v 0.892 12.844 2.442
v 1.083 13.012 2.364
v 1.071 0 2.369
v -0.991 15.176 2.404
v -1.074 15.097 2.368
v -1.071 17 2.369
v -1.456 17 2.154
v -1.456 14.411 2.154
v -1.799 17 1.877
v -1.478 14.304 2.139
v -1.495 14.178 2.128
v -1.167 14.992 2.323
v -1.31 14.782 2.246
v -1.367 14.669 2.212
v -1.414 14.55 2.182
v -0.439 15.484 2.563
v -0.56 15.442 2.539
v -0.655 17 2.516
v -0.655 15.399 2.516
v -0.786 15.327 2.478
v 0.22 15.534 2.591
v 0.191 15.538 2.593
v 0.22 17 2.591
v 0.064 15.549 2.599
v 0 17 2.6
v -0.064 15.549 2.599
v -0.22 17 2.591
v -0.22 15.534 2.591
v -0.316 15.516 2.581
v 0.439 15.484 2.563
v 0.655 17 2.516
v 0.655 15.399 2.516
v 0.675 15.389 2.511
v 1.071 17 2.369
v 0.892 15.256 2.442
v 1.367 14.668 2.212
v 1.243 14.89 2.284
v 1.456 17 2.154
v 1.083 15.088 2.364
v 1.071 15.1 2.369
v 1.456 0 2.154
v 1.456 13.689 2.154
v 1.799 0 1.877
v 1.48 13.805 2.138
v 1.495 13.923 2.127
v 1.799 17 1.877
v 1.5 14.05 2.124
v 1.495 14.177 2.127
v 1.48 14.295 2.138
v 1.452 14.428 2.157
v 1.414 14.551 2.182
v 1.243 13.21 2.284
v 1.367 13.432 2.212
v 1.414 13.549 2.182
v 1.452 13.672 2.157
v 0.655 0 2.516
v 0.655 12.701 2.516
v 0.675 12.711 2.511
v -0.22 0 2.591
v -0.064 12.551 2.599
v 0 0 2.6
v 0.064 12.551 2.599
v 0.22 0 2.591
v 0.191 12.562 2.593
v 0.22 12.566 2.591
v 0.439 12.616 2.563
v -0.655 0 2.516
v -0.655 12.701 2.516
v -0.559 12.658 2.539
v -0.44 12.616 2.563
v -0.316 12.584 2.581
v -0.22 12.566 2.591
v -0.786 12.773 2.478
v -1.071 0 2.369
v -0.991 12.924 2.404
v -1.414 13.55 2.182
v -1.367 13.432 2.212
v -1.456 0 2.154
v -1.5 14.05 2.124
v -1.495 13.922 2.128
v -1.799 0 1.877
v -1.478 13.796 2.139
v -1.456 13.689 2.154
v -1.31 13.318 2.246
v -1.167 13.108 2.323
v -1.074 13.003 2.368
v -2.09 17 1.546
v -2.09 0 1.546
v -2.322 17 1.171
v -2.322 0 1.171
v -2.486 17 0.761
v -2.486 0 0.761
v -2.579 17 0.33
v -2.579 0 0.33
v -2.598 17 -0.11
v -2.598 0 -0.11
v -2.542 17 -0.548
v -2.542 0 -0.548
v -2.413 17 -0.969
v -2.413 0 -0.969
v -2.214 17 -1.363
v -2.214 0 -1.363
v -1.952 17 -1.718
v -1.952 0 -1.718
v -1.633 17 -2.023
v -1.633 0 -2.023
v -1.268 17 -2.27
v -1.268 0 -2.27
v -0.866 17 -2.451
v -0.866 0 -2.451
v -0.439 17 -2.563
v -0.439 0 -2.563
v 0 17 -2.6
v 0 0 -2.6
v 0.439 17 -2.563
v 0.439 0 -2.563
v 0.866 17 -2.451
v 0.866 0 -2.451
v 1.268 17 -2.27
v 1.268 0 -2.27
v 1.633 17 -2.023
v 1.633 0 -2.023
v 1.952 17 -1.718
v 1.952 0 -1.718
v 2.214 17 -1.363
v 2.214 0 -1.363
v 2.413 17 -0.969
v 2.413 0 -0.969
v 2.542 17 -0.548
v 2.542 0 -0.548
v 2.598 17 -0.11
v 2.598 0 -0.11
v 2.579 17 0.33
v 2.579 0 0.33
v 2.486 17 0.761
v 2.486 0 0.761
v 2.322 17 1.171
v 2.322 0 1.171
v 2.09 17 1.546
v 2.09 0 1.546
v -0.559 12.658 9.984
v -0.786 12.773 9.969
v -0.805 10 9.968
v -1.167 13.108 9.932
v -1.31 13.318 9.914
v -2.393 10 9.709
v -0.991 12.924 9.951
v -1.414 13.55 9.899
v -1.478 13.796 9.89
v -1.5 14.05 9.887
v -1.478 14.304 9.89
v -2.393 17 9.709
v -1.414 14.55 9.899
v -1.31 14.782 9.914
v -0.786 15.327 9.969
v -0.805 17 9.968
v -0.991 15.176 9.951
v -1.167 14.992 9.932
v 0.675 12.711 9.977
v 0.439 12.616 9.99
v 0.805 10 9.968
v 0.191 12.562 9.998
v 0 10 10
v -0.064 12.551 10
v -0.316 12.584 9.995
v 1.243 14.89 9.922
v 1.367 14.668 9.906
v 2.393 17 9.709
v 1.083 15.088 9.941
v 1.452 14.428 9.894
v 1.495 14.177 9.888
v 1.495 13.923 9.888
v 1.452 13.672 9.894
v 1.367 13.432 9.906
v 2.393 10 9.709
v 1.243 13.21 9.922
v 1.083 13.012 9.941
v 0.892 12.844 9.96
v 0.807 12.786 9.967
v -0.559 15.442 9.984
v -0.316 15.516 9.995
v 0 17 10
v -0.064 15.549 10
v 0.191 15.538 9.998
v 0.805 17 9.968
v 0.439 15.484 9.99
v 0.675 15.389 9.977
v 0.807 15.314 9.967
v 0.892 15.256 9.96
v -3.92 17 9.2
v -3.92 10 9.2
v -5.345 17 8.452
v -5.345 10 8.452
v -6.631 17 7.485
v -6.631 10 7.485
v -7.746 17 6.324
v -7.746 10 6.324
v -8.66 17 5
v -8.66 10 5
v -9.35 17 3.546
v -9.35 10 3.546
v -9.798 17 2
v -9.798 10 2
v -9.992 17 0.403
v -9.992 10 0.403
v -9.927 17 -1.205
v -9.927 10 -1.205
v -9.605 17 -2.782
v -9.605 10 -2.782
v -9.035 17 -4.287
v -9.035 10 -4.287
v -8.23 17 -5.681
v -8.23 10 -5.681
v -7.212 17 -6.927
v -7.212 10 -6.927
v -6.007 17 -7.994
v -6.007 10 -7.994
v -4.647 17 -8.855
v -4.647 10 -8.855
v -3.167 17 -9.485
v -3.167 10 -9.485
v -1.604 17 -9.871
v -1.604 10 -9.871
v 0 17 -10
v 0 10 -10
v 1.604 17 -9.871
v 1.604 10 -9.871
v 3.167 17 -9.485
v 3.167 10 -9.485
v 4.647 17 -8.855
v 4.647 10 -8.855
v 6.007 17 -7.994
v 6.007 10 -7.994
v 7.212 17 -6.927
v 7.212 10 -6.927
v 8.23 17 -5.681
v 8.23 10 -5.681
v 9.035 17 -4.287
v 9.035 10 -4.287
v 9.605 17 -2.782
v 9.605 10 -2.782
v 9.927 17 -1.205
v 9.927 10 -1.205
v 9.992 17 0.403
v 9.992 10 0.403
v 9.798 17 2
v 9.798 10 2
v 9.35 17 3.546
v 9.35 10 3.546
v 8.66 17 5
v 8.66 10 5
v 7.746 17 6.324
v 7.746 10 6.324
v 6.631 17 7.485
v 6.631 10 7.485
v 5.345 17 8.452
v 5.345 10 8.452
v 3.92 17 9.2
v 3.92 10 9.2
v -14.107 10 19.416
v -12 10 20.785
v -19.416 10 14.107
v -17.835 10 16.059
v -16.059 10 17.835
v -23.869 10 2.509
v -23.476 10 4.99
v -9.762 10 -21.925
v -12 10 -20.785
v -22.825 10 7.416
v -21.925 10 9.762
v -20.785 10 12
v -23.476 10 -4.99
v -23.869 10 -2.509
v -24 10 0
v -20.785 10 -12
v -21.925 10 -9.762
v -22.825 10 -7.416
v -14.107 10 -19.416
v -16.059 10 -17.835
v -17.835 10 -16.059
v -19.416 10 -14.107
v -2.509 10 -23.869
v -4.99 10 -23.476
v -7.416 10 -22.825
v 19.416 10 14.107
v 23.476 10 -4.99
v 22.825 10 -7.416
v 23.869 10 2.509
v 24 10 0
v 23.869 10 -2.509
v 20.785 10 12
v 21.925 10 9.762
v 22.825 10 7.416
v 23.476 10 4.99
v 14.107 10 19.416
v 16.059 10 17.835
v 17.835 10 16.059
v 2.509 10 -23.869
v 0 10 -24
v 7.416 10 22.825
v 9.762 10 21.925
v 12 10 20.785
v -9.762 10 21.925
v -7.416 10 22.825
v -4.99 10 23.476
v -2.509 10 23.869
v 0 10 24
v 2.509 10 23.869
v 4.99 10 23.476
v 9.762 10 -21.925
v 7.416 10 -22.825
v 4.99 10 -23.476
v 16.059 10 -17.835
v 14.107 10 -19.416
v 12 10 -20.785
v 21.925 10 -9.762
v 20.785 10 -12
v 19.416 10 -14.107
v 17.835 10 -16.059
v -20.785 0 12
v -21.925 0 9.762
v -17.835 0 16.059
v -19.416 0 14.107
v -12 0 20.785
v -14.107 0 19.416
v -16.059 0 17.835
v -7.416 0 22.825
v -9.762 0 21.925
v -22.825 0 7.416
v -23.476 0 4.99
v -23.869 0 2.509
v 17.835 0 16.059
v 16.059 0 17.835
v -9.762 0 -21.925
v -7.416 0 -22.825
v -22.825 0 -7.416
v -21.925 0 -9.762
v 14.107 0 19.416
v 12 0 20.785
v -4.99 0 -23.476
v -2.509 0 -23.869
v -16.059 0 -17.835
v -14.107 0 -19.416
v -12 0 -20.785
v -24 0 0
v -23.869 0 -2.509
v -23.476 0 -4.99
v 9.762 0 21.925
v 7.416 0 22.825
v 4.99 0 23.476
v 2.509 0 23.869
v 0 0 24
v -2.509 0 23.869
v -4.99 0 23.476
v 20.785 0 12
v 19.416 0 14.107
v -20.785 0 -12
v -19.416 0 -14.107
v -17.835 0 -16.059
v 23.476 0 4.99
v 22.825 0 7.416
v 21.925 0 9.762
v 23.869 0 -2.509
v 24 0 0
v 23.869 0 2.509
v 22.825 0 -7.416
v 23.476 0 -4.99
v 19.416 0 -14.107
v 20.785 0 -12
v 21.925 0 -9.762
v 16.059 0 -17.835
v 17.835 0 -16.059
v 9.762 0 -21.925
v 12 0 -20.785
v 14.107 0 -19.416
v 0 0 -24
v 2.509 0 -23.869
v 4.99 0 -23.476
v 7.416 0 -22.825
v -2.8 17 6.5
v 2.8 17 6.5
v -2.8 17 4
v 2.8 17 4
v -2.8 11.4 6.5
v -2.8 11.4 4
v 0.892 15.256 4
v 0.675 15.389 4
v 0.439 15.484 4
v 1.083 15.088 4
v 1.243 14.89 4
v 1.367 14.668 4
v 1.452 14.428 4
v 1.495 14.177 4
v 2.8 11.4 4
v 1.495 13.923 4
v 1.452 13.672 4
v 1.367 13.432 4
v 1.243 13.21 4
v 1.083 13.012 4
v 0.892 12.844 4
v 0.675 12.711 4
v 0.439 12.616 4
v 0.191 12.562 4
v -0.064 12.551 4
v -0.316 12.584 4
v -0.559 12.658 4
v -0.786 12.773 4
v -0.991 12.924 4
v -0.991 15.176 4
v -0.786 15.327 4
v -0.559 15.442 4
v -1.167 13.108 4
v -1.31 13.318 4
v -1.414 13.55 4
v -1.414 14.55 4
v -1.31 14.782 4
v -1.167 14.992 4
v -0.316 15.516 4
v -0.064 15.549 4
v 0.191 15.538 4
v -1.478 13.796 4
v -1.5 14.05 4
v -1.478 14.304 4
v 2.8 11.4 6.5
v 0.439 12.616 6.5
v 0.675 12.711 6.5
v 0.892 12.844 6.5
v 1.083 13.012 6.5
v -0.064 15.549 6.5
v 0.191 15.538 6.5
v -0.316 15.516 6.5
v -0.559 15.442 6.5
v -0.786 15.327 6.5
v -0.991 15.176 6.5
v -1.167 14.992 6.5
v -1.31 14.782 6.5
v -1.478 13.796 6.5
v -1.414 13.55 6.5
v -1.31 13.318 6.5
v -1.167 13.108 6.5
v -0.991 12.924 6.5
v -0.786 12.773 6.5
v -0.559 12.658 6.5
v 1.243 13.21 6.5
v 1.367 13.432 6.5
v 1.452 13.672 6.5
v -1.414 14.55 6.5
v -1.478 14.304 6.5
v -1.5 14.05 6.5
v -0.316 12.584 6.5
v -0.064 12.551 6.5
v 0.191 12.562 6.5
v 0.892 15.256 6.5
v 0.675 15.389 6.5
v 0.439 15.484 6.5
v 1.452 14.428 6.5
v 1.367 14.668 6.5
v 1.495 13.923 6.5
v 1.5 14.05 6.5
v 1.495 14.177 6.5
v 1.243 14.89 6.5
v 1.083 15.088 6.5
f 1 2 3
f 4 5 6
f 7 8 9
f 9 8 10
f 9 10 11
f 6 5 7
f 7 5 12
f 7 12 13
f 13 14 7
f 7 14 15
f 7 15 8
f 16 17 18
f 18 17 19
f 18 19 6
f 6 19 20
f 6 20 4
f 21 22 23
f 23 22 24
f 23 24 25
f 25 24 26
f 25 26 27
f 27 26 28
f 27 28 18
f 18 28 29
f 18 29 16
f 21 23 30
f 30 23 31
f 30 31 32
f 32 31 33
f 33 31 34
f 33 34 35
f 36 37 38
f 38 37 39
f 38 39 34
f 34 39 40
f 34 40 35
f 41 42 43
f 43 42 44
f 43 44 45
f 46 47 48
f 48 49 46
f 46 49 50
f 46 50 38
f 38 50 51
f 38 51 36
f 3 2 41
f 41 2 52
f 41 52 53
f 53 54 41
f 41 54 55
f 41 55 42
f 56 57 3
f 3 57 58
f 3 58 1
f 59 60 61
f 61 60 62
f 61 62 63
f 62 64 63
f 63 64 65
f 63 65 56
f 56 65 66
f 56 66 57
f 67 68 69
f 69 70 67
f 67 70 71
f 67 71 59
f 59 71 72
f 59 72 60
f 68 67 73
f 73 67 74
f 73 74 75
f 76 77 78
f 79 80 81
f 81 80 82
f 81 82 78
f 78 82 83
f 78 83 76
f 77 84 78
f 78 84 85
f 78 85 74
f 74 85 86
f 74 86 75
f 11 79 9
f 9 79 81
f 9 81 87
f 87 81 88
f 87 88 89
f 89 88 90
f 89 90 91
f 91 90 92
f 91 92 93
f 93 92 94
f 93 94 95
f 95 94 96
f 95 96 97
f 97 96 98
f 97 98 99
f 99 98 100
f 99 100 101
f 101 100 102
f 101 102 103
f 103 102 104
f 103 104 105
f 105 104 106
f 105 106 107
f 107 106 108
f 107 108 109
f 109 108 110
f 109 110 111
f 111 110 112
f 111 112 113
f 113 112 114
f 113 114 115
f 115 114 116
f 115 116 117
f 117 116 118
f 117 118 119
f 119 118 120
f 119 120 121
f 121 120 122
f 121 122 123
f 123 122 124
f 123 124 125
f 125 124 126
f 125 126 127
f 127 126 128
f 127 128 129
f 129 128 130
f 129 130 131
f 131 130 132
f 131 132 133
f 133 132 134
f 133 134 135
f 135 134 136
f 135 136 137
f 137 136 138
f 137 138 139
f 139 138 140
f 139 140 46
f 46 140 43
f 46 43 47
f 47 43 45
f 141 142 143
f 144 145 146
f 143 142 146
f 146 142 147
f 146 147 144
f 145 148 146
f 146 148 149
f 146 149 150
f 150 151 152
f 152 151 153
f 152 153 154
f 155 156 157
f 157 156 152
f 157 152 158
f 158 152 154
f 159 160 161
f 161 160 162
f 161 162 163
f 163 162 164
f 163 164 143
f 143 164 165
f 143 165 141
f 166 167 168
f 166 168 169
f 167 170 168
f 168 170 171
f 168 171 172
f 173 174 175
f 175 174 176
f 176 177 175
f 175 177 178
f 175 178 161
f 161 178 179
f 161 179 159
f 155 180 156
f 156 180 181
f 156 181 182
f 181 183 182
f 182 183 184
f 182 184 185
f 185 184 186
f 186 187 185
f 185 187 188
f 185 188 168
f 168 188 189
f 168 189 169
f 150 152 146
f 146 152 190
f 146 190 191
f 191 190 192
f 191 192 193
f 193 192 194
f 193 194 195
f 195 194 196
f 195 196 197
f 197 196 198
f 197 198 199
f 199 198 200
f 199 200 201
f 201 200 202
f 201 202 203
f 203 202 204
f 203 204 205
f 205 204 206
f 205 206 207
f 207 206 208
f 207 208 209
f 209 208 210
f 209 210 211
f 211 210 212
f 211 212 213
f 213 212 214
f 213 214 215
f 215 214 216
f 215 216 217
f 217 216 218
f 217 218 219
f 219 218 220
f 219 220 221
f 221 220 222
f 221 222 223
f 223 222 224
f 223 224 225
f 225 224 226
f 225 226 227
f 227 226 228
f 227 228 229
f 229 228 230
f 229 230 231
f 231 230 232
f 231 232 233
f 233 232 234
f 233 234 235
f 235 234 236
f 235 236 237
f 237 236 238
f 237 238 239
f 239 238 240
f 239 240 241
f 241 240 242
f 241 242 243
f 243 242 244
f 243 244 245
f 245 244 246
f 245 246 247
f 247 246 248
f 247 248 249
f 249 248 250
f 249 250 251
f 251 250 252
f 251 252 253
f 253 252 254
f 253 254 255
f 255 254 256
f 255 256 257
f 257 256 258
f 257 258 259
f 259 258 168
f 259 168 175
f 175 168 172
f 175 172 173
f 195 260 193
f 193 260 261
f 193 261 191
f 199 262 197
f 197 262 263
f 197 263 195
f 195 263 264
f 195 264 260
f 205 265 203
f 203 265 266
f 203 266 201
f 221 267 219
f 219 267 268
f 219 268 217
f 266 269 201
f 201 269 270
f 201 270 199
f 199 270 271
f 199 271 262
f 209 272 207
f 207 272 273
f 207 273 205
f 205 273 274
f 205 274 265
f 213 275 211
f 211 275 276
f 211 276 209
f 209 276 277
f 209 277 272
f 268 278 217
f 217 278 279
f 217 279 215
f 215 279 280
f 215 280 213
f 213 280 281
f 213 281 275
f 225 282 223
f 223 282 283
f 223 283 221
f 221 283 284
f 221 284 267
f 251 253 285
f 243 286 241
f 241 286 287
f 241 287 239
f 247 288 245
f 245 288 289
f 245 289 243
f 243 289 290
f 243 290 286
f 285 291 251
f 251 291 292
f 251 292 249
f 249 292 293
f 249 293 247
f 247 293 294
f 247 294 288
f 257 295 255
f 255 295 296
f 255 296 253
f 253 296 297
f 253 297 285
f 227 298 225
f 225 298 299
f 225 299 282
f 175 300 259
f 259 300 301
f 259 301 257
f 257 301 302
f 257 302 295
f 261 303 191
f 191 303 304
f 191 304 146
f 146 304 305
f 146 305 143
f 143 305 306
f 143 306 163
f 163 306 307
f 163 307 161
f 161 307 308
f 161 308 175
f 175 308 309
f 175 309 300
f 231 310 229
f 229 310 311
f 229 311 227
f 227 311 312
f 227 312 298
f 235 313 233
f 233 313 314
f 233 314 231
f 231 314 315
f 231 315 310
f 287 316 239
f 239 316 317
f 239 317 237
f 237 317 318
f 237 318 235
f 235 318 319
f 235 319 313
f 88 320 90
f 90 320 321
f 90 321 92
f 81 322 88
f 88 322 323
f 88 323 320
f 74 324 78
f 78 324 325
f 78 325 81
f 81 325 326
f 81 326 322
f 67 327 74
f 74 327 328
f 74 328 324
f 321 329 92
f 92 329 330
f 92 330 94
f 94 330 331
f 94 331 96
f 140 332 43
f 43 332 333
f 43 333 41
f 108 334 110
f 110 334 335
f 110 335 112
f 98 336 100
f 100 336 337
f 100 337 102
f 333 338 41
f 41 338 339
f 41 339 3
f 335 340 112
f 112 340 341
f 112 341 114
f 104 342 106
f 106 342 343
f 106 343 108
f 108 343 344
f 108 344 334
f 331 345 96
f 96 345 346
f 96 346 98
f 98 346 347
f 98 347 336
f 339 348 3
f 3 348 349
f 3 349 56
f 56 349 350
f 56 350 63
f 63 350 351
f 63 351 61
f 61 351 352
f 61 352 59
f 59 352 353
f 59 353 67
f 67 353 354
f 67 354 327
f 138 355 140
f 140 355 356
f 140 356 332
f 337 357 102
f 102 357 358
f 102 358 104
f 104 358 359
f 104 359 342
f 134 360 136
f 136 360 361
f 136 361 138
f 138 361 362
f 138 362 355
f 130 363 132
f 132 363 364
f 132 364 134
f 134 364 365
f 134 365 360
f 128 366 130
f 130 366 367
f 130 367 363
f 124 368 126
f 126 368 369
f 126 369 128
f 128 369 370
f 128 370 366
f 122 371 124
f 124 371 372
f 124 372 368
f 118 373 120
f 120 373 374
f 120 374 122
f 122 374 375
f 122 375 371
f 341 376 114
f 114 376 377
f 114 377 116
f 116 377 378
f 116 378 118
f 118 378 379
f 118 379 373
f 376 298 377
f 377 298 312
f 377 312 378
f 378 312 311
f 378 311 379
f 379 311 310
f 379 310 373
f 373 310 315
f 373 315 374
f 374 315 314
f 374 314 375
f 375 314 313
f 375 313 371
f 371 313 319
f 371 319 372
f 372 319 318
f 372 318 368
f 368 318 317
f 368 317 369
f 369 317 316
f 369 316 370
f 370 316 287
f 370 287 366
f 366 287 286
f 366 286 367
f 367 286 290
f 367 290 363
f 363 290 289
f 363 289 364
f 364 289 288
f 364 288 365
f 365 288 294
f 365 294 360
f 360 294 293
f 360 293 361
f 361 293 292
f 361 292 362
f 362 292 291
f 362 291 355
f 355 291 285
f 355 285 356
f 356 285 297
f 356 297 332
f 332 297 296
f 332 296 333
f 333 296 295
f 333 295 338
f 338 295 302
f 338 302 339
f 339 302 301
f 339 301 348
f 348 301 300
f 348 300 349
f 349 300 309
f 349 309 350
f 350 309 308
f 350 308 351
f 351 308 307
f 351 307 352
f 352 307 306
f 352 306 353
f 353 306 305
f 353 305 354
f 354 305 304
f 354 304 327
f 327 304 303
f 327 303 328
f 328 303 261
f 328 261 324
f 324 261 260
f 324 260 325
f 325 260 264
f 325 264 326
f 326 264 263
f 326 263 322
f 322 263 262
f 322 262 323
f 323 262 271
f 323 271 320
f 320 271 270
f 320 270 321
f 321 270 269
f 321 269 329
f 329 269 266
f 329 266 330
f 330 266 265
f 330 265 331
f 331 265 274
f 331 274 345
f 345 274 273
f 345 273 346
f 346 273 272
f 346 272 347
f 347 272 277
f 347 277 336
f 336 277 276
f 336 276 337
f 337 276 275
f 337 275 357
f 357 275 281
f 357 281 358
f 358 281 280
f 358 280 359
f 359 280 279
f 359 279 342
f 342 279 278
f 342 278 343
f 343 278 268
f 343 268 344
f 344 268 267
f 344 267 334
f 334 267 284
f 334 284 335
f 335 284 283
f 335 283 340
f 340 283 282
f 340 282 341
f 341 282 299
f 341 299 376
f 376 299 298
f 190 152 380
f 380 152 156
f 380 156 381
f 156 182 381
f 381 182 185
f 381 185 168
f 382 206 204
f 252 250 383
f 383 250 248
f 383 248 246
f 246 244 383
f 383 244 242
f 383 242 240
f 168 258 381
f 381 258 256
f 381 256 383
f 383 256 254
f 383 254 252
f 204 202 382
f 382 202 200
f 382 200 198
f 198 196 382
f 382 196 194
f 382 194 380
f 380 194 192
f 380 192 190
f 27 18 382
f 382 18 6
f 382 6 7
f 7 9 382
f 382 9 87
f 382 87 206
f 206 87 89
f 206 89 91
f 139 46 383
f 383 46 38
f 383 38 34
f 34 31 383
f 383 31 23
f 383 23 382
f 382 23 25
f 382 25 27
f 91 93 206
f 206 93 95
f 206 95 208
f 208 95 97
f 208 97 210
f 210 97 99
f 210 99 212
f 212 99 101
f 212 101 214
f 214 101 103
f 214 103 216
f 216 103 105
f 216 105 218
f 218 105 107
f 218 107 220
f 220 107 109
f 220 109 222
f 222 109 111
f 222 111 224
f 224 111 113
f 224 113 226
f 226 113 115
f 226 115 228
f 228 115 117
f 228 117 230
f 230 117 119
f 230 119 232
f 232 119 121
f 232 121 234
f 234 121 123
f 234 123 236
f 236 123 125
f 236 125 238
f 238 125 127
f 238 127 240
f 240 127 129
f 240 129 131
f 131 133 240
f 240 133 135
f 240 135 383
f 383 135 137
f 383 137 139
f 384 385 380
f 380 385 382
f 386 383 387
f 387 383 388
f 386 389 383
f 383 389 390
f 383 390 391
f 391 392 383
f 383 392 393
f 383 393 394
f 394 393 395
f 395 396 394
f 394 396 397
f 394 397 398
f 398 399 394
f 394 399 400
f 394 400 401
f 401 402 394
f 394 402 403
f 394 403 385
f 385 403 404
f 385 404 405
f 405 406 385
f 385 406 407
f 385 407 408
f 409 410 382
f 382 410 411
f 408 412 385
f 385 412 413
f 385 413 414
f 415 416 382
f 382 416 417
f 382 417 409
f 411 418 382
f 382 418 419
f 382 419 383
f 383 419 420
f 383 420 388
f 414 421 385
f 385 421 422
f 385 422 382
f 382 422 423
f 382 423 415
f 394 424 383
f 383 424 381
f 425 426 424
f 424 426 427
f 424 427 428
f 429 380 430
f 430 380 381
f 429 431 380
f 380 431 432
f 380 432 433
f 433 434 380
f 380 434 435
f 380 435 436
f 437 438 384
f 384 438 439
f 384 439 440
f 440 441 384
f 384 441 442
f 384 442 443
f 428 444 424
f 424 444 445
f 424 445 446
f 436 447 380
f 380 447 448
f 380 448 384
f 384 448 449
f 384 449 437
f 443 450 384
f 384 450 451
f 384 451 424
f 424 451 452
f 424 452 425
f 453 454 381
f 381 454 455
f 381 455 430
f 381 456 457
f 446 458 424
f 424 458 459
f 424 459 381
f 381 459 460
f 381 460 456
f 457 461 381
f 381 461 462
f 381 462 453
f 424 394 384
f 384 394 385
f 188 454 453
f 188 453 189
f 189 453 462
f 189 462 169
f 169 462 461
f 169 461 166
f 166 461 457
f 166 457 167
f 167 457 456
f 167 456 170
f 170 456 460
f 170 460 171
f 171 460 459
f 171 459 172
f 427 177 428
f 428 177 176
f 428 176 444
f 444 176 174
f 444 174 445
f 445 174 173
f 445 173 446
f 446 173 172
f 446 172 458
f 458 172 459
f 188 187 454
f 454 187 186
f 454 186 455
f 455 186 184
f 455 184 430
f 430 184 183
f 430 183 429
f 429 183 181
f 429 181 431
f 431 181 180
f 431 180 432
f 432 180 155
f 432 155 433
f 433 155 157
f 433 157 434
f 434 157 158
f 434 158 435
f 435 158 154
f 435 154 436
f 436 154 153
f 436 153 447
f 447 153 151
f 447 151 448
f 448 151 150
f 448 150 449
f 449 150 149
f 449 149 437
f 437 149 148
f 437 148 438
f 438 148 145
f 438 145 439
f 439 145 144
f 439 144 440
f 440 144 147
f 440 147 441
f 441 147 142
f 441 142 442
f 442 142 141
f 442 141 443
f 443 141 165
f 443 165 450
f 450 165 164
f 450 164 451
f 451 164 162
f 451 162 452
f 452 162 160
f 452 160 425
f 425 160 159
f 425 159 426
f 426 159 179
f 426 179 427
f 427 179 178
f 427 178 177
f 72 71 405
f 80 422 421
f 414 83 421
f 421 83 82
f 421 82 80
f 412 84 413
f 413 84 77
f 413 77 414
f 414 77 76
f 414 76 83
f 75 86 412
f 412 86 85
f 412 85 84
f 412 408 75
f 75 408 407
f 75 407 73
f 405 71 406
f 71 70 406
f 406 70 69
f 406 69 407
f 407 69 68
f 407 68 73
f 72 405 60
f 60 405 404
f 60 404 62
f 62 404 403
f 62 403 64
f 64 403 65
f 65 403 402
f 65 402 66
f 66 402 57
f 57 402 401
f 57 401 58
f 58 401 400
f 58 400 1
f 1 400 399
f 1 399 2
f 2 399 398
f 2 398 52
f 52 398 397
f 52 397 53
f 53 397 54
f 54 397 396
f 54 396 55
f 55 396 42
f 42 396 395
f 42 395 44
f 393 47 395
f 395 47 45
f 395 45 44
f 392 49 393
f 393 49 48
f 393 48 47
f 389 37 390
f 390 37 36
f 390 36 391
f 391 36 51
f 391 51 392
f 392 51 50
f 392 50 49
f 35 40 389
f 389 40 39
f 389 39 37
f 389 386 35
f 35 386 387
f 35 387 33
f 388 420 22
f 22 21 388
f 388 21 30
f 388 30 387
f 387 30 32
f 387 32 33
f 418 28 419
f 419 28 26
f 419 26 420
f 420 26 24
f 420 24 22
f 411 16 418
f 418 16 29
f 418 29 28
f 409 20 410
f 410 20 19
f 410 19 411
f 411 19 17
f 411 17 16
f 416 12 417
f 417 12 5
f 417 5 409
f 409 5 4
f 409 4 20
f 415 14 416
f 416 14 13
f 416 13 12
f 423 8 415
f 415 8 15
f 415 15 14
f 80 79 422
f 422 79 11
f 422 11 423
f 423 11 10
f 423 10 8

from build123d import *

# Parameters (mm, degrees)
PULLYBODY_R         = 24
PULLYBODY_R_2       = 2.6
BOSS_EXTRUDE1_DEPTH = 10
SKETCH2_R           = 10
SKETCH2_R_2         = 2.6
BOSS_EXTRUDE2_DEPTH = 7
SKETCH3_W           = 5.6
SKETCH3_H           = 2.5
CUT_EXTRUDE1_DEPTH  = 5.6
SKETCH4_R           = 1.5
CUT_EXTRUDE2_DEPTH  = 38.960505792


with BuildPart() as part:
    # PullyBody → Boss-Extrude1 (new body)
    with BuildSketch(Plane(origin=(0, 0, 0), x_dir=(1, 0, 0), z_dir=(0, 1, 0))):
        with Locations(Location((0, 0, 0), (0, 0, 270))):
            Circle(PULLYBODY_R)
        with Locations(Location((0, 0, 0), (0, 0, 270))):
            Circle(PULLYBODY_R_2, mode=Mode.SUBTRACT)
    extrude(amount=BOSS_EXTRUDE1_DEPTH)

    # Sketch2 → Boss-Extrude2 (add)
    with BuildSketch(Plane(origin=(0, 10, 0), x_dir=(1, 0, 0), z_dir=(0, 1, 0))):
        with Locations(Location((0, 0, 0), (0, 0, 270))):
            Circle(SKETCH2_R)
        with Locations(Location((0, 0, 0), (0, 0, 270))):
            Circle(SKETCH2_R_2, mode=Mode.SUBTRACT)
    extrude(amount=BOSS_EXTRUDE2_DEPTH)

    # Sketch3 → Cut-Extrude1 (cut)
    with BuildSketch(Plane(origin=(0, 17, 0), x_dir=(1, 0, 0), z_dir=(0, 1, 0))):
        with Locations((0, -5.25)):
            Rectangle(SKETCH3_W, SKETCH3_H)
    extrude(amount=-CUT_EXTRUDE1_DEPTH, mode=Mode.SUBTRACT)

    # Sketch4 → Cut-Extrude2 (cut, through all)
    with BuildSketch(Plane.XY):
        with Locations(Location((0, 14.05, 0), (0, 0, 180))):
            Circle(SKETCH4_R)
    extrude(amount=CUT_EXTRUDE2_DEPTH, mode=Mode.SUBTRACT)


solid = part.part
